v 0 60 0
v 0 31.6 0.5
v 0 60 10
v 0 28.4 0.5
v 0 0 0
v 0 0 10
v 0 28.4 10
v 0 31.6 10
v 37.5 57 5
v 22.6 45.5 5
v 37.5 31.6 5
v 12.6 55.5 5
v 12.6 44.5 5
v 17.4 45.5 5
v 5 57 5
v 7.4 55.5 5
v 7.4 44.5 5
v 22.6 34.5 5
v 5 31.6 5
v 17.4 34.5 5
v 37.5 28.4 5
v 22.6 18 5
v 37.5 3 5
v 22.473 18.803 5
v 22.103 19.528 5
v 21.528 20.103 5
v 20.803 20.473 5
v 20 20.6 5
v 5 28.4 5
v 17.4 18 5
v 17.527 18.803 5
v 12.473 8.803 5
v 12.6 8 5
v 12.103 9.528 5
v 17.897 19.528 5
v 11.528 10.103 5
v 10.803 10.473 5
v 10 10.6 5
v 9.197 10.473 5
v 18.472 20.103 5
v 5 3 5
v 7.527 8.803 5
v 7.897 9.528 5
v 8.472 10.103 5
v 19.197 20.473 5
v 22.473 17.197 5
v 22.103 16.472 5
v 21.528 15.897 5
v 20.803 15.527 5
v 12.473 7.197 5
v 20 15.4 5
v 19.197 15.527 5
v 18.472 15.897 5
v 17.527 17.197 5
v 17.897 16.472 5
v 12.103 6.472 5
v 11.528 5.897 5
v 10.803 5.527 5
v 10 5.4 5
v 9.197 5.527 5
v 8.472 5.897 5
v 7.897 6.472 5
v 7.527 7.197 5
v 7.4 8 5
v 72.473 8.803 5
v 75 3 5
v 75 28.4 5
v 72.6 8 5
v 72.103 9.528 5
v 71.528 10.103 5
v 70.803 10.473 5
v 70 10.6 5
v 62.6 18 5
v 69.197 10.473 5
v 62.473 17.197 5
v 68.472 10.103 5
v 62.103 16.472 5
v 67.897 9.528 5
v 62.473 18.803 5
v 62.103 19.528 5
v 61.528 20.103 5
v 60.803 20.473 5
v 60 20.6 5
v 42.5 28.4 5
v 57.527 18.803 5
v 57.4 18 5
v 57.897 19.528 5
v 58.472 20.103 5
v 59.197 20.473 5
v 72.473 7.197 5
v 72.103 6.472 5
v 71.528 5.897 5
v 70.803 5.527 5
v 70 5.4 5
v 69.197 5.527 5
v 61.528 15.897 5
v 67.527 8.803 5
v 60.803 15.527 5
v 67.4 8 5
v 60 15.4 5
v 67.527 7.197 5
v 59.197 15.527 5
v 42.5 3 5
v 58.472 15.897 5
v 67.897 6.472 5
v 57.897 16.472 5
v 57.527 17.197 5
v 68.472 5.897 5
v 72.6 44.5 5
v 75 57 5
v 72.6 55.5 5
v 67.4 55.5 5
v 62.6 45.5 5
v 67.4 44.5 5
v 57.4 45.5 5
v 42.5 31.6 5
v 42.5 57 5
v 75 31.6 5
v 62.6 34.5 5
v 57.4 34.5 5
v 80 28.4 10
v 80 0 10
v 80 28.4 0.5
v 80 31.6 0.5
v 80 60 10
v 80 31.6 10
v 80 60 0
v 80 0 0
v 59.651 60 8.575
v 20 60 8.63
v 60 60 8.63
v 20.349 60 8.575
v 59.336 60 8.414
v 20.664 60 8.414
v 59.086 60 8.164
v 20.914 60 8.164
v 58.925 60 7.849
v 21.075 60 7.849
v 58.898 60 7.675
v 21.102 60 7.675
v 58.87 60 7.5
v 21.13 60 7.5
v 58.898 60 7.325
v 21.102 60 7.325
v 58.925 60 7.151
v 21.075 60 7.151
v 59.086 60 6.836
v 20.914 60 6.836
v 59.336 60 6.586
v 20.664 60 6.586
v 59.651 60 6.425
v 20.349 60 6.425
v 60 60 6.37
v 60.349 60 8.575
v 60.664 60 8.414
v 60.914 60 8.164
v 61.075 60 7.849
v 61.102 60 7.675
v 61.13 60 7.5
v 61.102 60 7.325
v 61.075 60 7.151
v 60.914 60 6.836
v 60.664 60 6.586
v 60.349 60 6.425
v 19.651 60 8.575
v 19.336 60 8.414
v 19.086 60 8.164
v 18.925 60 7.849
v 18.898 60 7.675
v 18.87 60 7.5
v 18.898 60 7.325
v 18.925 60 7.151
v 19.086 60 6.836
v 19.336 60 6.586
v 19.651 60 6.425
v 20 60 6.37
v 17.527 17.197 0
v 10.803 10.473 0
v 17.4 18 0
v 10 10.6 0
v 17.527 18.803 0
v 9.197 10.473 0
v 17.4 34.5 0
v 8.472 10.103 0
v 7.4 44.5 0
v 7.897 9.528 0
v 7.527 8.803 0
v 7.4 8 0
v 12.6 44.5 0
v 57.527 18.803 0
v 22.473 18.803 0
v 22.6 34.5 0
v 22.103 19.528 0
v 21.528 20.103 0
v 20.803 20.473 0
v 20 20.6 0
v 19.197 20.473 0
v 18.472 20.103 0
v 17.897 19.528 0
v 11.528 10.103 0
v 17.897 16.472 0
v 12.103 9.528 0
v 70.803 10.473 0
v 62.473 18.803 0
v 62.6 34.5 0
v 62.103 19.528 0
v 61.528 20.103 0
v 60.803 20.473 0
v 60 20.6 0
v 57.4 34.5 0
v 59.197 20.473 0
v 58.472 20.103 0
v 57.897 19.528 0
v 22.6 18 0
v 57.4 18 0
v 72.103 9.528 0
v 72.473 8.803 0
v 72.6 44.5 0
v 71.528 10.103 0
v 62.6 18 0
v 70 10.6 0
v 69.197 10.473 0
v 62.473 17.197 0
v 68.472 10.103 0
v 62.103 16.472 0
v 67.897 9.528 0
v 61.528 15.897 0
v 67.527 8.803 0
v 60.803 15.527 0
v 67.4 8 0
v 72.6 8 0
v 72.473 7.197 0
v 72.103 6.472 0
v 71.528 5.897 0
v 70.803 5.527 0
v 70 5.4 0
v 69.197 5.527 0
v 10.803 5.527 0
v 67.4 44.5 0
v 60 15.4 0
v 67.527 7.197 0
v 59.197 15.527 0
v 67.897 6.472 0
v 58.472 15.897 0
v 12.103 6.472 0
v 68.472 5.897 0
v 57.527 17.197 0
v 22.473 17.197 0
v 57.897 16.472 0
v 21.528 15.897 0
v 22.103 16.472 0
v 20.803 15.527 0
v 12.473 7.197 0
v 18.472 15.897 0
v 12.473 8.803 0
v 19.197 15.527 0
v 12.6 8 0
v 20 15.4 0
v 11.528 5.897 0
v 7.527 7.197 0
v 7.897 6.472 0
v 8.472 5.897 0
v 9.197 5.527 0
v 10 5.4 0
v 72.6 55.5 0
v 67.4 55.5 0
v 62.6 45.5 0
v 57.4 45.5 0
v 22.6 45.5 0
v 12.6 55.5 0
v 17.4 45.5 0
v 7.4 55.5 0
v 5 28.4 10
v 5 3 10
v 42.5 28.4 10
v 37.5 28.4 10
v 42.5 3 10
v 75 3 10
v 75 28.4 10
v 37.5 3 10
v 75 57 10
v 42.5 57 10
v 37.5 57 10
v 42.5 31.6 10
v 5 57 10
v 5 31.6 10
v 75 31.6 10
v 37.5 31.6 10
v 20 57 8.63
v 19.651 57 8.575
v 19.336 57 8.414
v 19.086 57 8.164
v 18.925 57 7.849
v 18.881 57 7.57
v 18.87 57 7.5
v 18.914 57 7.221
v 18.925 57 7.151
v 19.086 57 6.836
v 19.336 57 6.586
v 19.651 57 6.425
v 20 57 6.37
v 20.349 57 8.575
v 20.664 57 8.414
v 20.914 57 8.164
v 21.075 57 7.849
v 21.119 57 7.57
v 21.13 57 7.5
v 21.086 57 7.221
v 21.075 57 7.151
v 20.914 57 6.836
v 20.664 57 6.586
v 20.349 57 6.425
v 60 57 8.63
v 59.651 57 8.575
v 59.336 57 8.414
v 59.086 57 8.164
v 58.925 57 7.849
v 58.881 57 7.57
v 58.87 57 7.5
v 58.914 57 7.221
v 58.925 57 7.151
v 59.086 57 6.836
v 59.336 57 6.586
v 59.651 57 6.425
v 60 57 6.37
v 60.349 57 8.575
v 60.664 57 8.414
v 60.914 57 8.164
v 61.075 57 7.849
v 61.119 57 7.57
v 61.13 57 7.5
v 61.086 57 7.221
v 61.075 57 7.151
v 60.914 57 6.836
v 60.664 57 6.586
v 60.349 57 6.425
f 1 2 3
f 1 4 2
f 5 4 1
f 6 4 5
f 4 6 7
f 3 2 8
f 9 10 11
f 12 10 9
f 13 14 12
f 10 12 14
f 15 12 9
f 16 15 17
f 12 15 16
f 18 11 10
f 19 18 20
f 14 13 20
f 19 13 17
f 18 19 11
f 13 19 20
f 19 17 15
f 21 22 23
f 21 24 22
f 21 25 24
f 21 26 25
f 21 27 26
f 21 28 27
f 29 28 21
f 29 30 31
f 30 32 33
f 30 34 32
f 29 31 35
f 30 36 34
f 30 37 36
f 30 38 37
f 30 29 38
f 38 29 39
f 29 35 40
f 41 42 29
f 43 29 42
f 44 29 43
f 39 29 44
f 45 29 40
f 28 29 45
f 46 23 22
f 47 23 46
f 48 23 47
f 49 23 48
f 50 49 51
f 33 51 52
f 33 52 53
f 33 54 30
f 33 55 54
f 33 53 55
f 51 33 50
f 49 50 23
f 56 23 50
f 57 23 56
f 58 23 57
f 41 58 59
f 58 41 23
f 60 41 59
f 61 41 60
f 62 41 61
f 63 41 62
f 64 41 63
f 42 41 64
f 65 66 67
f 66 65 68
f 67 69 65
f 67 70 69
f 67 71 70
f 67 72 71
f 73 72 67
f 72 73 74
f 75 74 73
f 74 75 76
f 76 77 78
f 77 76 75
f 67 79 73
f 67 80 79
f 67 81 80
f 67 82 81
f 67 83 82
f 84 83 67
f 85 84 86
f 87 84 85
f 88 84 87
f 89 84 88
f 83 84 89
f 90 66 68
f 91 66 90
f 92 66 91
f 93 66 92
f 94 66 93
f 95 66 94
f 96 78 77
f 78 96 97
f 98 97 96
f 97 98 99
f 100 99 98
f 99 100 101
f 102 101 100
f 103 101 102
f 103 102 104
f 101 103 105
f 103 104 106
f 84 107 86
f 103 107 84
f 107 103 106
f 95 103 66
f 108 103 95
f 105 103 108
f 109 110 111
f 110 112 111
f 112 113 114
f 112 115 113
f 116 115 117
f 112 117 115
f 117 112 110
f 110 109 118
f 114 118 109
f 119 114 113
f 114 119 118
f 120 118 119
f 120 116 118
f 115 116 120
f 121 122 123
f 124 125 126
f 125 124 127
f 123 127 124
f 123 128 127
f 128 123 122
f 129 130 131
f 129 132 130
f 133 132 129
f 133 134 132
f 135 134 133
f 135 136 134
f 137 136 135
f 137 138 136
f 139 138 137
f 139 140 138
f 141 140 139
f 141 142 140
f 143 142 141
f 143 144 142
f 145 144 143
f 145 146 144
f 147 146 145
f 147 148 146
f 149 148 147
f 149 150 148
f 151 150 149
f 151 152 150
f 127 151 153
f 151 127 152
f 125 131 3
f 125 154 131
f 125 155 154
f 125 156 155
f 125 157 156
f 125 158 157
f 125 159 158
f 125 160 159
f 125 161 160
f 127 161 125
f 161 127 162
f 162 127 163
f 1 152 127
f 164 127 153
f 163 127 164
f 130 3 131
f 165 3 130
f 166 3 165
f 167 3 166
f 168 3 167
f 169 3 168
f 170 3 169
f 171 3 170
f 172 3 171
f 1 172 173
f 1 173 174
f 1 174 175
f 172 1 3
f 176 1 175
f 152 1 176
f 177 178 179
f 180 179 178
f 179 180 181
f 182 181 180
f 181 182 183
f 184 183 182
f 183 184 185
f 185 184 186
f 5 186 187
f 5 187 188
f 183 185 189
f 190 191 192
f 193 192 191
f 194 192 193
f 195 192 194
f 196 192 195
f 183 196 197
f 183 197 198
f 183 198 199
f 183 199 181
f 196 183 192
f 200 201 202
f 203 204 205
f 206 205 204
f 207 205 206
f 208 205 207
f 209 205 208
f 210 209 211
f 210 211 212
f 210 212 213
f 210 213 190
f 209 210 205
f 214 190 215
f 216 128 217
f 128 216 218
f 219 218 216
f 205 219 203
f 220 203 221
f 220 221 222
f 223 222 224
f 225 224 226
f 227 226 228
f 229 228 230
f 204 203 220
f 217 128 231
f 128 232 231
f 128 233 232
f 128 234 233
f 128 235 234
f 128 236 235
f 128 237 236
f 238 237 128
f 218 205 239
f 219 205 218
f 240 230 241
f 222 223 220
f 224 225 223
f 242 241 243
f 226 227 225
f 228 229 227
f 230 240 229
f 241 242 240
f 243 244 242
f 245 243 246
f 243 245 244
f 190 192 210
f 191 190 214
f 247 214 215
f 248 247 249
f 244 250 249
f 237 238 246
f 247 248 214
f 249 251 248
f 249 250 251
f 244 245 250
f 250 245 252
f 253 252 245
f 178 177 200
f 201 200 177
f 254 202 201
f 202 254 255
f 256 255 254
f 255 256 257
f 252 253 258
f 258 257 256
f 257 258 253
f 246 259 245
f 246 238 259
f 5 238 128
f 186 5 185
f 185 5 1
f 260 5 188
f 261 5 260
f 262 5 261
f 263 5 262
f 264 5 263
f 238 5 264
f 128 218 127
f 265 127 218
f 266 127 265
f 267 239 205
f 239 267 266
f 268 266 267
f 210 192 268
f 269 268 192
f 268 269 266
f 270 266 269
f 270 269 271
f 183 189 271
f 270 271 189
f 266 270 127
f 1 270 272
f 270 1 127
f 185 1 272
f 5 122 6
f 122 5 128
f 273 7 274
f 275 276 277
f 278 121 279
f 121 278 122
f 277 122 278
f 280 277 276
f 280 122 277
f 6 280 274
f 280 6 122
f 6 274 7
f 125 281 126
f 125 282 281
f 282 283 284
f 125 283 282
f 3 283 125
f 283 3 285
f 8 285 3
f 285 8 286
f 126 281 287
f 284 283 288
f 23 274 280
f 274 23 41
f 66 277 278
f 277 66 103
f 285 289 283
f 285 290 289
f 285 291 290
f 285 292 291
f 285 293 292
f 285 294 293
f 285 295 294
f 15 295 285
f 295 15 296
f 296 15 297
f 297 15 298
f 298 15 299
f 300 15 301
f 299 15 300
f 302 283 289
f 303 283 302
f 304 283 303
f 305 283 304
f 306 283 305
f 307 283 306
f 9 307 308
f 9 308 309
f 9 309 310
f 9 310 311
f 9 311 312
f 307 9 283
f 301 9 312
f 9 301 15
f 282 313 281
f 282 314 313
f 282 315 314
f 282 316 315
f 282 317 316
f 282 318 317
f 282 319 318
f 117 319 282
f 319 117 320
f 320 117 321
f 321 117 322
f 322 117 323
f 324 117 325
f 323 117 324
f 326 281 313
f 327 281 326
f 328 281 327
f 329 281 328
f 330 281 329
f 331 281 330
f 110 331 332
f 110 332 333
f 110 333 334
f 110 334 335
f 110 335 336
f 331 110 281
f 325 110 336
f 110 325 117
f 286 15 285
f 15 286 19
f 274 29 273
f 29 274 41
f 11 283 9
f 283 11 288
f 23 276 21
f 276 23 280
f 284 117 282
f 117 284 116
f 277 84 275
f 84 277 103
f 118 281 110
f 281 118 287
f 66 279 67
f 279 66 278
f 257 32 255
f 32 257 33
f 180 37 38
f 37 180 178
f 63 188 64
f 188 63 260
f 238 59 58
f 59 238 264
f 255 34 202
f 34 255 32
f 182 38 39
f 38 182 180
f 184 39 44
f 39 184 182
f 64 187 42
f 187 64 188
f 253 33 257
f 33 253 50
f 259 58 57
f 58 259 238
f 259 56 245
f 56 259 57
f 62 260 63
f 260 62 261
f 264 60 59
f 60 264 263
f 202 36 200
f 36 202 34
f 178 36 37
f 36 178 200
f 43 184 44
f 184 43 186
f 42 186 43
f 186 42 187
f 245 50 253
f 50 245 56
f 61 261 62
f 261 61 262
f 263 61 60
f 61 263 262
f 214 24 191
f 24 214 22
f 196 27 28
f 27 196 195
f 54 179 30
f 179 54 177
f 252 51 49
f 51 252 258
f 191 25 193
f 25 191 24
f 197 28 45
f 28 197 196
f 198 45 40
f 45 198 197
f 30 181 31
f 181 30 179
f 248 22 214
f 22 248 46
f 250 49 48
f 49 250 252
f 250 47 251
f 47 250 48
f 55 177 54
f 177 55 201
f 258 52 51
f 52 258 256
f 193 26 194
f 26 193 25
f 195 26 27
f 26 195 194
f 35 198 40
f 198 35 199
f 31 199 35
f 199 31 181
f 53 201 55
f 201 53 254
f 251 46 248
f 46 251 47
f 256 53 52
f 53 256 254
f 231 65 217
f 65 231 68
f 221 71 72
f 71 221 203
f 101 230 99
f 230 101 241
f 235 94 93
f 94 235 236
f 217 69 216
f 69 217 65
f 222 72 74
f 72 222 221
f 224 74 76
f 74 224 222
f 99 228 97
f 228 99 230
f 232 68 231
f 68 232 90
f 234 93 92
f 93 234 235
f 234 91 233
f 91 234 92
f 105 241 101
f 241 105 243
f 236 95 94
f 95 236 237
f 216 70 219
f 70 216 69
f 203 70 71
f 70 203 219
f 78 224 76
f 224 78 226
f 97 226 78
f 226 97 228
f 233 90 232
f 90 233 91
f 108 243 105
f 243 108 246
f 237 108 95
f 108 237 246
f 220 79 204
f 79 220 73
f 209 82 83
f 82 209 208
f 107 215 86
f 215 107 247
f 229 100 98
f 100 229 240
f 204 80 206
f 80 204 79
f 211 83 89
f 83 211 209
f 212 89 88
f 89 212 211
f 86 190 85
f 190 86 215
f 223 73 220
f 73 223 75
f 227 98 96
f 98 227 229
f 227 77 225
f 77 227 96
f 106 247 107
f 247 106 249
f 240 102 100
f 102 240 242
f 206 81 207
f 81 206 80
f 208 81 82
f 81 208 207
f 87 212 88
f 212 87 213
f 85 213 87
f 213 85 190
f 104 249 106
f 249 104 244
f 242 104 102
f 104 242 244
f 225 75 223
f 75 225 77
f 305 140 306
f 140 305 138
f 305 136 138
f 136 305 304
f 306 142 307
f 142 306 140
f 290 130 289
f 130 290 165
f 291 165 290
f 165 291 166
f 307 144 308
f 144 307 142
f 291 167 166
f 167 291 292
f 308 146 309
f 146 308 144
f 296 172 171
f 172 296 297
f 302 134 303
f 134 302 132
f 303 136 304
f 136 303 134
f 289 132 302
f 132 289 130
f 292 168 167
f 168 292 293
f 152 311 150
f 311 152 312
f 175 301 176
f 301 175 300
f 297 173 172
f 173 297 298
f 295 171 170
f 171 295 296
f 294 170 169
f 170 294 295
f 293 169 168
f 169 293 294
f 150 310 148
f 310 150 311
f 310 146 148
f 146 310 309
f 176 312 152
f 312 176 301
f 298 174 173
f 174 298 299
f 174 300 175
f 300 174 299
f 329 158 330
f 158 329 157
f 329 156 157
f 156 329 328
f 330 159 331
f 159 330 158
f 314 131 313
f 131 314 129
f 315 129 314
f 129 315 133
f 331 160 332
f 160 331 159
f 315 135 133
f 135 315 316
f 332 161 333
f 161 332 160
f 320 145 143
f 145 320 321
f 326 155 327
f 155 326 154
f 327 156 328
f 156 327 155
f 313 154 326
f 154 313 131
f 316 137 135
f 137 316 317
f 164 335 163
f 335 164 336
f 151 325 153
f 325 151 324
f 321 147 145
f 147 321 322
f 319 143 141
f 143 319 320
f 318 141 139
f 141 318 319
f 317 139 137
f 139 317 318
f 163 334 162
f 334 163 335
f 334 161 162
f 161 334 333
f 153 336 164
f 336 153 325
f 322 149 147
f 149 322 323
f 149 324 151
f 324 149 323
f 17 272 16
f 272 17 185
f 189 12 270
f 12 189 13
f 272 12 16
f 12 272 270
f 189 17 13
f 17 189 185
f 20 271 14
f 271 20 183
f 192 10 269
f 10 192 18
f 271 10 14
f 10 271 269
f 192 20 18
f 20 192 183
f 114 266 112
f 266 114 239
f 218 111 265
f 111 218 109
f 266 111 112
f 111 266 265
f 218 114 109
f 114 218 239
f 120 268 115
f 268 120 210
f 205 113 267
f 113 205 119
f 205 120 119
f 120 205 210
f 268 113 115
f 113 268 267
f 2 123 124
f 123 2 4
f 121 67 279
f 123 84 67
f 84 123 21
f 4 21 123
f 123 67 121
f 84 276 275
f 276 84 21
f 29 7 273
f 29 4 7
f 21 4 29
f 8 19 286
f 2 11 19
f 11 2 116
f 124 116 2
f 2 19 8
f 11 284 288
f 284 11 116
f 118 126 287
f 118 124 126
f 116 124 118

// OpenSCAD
difference(){
    union(){
        cube([80,60,5]);
        translate([0, 0, 0]) cube([80, 3, 10]);
        translate([0, 57, 0]) cube([80, 3, 10]);
        translate([0, 0, 0]) cube([5, 60, 10]);
        translate([37.5, 0, 0]) cube([5, 60, 10]);
        translate([75, 0, 0]) cube([5, 60, 10]);    
    }
    
    translate([10, 8,3]) cylinder(h = 6, r=2.6, center = true, $fn=20);
    translate([20, 18,3]) cylinder(h = 6, r=2.6, center = true, $fn=20);
    translate([70, 8,3]) cylinder(h = 6, r=2.6, center = true, $fn=20);
    translate([60, 18,3]) cylinder(h = 6, r=2.6, center = true, $fn=20);

    // for set screws
    translate([20, 60,7.5]) rotate([90,0,0]) cylinder(h = 10, d=2.26, center = true, $fn=20);
    translate([60, 60,7.5]) rotate([90,0,0]) cylinder(h = 10, d=2.26, center = true, $fn=20);


    translate([10, 50,3]) cube([5.2, 11, 6],center=true);
    translate([20, 40,3]) cube([5.2, 11, 6],center=true);
    translate([70, 50,3]) cube([5.2, 11, 6],center=true);
    translate([60, 40,3]) cube([5.2, 11, 6],center=true);
    
    translate([40, 30, 5.5]) cube([100, 3.2, 10],center=true); // cut between center pieces
}
